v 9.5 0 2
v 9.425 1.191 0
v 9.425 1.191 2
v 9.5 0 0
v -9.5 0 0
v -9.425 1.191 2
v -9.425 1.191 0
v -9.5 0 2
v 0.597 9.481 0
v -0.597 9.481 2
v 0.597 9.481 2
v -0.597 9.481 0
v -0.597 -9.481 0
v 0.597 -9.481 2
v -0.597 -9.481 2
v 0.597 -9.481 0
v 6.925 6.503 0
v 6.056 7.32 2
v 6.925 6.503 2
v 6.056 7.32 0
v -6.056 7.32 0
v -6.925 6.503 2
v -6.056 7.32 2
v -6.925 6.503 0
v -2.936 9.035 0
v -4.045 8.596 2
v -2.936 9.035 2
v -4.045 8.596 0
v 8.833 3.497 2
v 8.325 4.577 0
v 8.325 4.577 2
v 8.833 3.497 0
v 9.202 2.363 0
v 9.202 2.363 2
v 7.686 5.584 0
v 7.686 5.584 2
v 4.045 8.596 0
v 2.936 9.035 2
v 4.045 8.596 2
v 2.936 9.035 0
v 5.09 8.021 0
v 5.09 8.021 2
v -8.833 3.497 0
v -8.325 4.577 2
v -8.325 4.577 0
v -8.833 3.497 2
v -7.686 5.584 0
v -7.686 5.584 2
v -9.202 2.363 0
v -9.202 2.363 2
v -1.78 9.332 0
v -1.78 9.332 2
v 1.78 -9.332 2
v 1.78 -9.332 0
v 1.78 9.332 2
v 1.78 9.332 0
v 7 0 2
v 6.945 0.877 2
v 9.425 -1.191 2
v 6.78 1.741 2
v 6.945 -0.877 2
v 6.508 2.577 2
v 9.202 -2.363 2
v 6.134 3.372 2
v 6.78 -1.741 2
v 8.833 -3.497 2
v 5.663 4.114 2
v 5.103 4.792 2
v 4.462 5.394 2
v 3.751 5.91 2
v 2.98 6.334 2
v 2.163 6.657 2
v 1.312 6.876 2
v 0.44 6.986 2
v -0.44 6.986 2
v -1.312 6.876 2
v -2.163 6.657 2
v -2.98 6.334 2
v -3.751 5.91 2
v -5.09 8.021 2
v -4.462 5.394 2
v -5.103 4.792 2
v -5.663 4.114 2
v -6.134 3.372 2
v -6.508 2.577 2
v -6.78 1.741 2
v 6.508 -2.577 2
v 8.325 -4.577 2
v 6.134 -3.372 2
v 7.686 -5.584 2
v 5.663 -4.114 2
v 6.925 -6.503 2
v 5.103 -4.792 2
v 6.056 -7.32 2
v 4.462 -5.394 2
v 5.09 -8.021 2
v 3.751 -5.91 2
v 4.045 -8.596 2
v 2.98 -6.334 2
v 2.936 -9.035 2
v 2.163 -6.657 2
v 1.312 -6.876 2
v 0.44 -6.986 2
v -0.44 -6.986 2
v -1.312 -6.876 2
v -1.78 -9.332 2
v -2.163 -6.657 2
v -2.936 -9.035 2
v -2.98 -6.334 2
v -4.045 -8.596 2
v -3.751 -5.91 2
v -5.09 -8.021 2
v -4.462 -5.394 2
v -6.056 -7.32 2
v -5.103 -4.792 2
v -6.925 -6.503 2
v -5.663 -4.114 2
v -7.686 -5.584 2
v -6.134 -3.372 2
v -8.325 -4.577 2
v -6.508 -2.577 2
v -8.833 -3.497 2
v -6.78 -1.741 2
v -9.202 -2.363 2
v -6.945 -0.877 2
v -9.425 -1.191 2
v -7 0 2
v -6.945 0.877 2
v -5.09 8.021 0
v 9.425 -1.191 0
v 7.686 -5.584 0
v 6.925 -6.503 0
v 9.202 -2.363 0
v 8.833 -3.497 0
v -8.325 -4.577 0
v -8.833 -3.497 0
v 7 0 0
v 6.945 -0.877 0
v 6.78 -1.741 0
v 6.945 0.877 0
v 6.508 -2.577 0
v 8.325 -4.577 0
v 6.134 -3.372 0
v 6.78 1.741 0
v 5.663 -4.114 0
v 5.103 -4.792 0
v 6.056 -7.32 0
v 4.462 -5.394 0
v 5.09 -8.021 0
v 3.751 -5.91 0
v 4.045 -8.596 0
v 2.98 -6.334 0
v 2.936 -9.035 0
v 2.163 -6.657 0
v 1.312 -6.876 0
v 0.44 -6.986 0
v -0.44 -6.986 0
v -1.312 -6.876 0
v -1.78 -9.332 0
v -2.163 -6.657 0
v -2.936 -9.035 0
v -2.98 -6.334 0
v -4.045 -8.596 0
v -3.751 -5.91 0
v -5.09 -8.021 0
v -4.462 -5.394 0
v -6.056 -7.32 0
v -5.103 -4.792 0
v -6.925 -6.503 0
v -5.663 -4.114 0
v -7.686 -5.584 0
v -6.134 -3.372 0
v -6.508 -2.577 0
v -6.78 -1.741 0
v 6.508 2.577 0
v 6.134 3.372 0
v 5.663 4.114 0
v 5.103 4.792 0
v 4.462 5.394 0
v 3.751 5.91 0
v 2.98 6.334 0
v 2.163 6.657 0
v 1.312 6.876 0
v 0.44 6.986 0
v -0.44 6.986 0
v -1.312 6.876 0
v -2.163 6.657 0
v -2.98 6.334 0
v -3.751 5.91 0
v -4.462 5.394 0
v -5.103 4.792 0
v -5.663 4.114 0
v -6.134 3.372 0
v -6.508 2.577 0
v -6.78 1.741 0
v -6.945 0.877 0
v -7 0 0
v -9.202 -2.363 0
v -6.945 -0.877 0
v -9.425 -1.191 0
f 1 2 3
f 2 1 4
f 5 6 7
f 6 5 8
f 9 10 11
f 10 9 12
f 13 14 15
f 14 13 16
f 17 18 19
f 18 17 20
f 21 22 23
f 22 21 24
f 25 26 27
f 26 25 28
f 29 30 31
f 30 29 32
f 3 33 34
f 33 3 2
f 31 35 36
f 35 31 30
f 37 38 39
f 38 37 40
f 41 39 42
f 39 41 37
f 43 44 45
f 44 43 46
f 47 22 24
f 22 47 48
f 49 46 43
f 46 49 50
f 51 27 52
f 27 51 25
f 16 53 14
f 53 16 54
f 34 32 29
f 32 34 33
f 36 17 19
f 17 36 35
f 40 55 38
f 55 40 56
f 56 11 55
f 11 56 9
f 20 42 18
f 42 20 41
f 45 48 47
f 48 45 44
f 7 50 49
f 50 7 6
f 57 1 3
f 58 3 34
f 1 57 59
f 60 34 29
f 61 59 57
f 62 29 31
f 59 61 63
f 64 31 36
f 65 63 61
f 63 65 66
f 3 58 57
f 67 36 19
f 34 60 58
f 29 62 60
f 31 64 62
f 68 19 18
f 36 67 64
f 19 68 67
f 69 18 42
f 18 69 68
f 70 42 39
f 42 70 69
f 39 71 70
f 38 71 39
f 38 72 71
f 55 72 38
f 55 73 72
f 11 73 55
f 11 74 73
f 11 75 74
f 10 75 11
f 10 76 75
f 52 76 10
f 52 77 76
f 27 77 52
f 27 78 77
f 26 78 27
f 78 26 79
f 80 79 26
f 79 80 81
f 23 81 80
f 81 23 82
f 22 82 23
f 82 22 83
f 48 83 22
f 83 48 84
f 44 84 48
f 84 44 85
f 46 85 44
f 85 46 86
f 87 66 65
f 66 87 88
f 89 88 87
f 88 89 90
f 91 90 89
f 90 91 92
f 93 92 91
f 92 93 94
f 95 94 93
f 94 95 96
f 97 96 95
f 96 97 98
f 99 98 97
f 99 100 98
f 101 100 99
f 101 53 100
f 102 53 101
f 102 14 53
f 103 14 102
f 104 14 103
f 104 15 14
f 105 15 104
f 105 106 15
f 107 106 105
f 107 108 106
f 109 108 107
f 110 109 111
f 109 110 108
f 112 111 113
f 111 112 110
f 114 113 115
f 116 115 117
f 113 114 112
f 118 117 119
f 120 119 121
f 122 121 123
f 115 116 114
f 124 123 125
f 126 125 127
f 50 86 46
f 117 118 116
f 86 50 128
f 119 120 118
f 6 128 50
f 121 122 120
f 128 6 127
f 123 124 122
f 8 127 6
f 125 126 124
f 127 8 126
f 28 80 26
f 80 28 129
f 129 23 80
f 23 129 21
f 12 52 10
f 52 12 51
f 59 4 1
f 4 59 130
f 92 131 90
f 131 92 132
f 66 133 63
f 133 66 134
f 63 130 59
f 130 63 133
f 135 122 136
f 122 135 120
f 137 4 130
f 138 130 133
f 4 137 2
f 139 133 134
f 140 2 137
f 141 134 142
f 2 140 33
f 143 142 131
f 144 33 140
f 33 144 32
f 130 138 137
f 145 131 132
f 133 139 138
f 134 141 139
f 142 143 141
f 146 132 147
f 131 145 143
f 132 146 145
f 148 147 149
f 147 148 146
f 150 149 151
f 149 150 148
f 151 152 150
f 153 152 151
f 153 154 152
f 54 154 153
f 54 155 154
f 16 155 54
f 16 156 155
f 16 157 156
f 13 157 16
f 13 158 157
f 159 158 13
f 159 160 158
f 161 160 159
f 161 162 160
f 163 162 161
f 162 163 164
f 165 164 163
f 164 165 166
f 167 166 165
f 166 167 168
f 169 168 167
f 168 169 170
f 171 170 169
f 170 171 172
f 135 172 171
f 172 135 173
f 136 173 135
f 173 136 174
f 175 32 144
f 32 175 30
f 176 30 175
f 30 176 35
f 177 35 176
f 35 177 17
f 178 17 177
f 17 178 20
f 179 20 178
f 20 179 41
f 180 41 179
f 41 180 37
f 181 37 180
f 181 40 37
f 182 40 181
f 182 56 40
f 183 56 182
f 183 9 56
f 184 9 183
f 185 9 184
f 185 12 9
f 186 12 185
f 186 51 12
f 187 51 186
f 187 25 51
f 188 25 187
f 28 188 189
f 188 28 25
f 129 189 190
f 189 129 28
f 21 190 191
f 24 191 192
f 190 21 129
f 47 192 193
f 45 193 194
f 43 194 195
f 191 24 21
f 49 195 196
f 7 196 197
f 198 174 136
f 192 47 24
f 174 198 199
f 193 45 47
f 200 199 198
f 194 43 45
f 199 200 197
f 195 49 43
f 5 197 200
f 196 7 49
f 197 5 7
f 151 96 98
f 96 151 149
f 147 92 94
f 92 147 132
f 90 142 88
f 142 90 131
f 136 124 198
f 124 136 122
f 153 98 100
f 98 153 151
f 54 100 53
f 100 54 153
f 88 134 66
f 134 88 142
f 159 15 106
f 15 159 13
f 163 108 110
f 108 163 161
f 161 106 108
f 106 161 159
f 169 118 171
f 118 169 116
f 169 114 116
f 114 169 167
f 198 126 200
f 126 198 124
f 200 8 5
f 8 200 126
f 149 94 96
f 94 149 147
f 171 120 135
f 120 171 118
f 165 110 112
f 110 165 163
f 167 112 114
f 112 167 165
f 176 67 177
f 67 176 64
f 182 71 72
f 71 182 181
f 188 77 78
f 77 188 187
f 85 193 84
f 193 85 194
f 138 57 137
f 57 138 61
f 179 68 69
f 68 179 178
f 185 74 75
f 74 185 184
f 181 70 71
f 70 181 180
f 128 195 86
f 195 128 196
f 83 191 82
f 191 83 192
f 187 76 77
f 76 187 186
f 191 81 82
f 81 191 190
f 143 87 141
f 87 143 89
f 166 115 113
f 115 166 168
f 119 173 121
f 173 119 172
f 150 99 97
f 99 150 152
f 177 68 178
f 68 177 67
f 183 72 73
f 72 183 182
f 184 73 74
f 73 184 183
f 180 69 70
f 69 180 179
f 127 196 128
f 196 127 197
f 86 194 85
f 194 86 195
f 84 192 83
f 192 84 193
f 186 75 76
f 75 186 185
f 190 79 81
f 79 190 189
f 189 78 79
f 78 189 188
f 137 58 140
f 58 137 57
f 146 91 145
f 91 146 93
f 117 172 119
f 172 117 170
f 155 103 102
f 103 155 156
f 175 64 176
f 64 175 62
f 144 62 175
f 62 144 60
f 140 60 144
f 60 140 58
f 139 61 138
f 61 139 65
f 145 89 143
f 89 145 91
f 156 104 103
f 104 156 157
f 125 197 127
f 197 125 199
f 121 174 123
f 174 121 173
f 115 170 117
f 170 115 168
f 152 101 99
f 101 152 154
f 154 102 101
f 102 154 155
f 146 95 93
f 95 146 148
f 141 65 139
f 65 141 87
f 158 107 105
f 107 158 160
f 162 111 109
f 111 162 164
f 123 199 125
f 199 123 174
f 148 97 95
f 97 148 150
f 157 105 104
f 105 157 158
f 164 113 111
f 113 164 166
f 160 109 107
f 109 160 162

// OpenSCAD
$fn=50;
difference() {
    cylinder(2,19/2,19/2);
    cylinder(2,14/2,14/2);
}
